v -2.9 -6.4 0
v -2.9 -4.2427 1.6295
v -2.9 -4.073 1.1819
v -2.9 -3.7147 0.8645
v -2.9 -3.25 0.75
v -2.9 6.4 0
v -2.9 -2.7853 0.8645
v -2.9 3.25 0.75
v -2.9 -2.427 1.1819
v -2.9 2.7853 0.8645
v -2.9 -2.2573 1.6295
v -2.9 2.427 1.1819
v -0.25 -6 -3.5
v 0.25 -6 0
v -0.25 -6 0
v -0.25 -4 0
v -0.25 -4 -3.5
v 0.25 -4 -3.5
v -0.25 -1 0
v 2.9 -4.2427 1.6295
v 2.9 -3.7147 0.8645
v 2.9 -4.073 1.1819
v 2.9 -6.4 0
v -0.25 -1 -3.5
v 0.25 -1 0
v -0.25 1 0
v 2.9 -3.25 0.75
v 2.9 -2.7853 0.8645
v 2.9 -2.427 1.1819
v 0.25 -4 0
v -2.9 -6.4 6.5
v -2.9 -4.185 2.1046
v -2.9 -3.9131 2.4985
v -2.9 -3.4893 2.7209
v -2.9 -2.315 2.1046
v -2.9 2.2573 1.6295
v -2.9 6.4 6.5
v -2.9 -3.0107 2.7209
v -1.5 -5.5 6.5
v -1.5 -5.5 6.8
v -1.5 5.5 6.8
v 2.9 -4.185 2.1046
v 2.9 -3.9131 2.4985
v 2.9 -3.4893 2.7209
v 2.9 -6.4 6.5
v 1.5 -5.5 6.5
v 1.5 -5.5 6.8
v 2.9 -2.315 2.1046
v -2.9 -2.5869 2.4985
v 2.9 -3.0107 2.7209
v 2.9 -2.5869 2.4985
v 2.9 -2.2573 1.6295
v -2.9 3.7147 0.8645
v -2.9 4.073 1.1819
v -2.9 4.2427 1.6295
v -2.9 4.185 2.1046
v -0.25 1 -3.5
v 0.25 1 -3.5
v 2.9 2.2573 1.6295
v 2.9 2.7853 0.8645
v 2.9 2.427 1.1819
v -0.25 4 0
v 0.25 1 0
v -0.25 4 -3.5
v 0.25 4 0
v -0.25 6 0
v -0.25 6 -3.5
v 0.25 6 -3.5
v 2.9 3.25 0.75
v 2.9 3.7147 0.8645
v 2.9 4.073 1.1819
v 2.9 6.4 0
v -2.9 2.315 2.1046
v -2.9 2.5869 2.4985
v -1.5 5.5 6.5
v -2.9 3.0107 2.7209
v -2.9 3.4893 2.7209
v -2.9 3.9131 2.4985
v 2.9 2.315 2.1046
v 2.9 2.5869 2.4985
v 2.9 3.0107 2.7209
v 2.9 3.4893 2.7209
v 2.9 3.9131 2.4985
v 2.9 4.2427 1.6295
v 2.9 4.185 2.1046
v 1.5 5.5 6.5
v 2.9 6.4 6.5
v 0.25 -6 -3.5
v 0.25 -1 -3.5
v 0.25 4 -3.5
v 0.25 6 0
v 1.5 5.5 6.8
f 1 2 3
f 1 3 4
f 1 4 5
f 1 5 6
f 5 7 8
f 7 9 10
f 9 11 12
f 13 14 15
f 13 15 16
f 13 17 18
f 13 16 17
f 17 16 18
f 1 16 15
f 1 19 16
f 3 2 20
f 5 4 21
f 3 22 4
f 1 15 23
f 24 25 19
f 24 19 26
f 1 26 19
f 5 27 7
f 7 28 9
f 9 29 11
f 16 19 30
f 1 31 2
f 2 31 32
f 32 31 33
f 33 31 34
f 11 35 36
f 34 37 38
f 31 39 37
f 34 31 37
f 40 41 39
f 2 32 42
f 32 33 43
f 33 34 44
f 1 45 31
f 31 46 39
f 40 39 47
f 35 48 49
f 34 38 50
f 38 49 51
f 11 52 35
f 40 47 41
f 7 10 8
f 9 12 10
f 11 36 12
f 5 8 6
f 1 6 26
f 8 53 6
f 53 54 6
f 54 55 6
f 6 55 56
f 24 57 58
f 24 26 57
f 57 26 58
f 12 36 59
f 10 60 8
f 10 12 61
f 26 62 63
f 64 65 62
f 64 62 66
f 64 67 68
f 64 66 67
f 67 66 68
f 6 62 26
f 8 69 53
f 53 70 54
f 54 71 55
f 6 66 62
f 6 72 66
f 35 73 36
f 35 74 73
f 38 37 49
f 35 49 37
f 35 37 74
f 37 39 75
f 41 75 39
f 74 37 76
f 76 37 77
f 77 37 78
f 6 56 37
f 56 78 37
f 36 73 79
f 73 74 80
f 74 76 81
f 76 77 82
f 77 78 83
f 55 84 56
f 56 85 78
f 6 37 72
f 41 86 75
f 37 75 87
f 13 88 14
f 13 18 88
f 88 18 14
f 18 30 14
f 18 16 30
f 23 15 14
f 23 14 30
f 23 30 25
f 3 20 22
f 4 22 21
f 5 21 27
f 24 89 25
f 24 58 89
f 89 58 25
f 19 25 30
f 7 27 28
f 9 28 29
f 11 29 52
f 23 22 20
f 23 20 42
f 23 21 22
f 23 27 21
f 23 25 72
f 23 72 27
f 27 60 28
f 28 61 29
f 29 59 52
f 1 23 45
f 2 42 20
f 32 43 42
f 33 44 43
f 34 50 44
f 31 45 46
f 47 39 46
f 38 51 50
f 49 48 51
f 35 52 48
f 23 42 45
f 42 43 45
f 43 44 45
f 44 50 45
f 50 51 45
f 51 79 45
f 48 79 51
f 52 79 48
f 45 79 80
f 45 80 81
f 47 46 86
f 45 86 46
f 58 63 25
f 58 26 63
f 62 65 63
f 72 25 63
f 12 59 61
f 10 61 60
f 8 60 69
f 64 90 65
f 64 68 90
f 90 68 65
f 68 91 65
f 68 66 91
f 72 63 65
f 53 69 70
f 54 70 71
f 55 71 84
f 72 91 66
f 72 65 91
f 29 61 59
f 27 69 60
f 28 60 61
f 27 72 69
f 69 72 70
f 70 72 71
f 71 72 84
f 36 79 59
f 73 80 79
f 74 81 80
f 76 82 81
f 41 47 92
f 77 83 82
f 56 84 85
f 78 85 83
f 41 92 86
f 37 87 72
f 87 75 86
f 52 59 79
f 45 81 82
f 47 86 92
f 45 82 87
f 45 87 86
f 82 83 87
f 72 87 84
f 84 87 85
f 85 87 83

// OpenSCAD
// file: ../lib/lib.scad
// Shared helpers. Include AFTER params.scad (needs TOL, M3_* etc.).
$fa = 4; $fs = 0.5;

module rrect(size, r) {            // 2D rounded rectangle, centred
    r2 = min(r, min(size[0], size[1]) / 2 - 0.001);
    offset(r = r2) square([size[0] - 2 * r2, size[1] - 2 * r2], center = true);
}
module rbox(size, r, center_xy = true) {   // box with rounded vertical edges
    translate(center_xy ? [0, 0, 0] : [size[0] / 2, size[1] / 2, 0])
        linear_extrude(size[2]) rrect([size[0], size[1]], r);
}
module rbox_at(x0, x1, y0, y1, z0, z1, r = 0.01) {
    translate([(x0 + x1) / 2, (y0 + y1) / 2, z0]) rbox([x1 - x0, y1 - y0, z1 - z0], r);
}
module box_at(x0, x1, y0, y1, z0, z1) { translate([x0, y0, z0]) cube([x1 - x0, y1 - y0, z1 - z0]); }

module ring(ro, ri, h) { difference() { cylinder(r = ro, h = h); translate([0, 0, -1]) cylinder(r = ri, h = h + 2); } }
module ring_sector(ro, ri, h, a0, a1) {
    intersection() {
        ring(ro, ri, h);
        linear_extrude(h) polygon(concat([[0, 0]], [for (a = [a0 : (a1 - a0) / 24 : a1]) 2 * ro * [cos(a), sin(a)]]));
    }
}
// teardrop hole along an axis lying horizontal (axis = Y after rotation), printable w/o support
module teardrop2d(d) { union() { circle(d = d); rotate(45) square(d / 2); } }
// vertical heat-set insert hole, opening at z=0 going +z (depth l)
module insert_hole(l = M3_INSERT_L) { translate([0, 0, -EPS]) cylinder(d = M3_INSERT_D, h = l + EPS); }
module m3_clear(l) { translate([0, 0, -EPS]) cylinder(d = M3_CLEAR, h = l + 2 * EPS); }
module m3_csk(l) {  // countersunk clearance from z=0 upward, head at z=0 side
    translate([0, 0, -EPS]) { cylinder(d = M3_CLEAR, h = l + 2 * EPS); cylinder(d1 = 6.4, d2 = M3_CLEAR, h = 1.7); }
}
module card2d() { rrect([CARD_L, CARD_W], CARD_R); }
module card_at(cy, z) { translate([0, cy, z]) linear_extrude(CARD_T) card2d(); }

// ---- gears ----
function _inv(a) = tan(a) - a * PI_ / 180;           // involute function, a in deg
function _invpt(rb, r, ang0, s) = let(al = acos(rb / r), th = ang0 - s * (_inv(al) * 180 / PI_)) [r * cos(th), r * sin(th)];
module involute_gear2d(m, z, pa = 20, clearance = 0.05) {
    rp = m * z / 2; rb = rp * cos(pa); ra = rp + m - clearance; rf = rp - 1.25 * m;
    half = 90 / z + _inv(pa) * 180 / PI_;            // tooth half-angle at base (deg)
    n = 8;
    rs = [for (i = [0 : n]) max(rb, rf) + (ra - max(rb, rf)) * i / n];
    union() {
        circle(r = rf, $fn = z * 4);
        for (k = [0 : z - 1]) rotate(k * 360 / z) polygon(concat(
            [[rf * cos(-half), rf * sin(-half)]],
            [for (r = rs) let(p = _invpt(rb, r, half, 1)) [p[0], -p[1]]],
            [for (i = [n : -1 : 0]) _invpt(rb, rs[i], half, 1)],
            [[rf * cos(half), rf * sin(half)]]));
    }
}
// straight gear rack (2D in XY: teeth along +x, pointing -y, pitch line at y=0)
module gear_rack2d(m, len, back = 3) {
    p = PI_ * m; ad = m; de = 1.25 * m; t = tan(20);
    n = ceil(len / p) + 1;
    intersection() {
        union() {
            translate([0, de]) square([len, back]);
            for (i = [0 : n]) translate([i * p - p / 4, 0]) polygon([
                [-(p / 4 + de * t), de + 0.01], [p / 4 + de * t + 0.01, de + 0.01],
                [p / 4 - ad * t, -ad], [-(p / 4 - ad * t), -ad] ]);
        }
        translate([0, -ad - 1]) square([len, ad + de + back + 2]);
    }
}
// GT2 belt-tooth profile ring (teeth outward), 2D
module gt2_ring2d(n, r_land, ri) {
    union() {
        difference() { circle(r = r_land + 0.01, $fn = n * 2); circle(r = ri, $fn = n * 2); }
        for (k = [0 : n - 1]) rotate(k * 360 / n)
            translate([r_land, 0]) hull() { translate([-0.2, 0]) square([0.2, 1.0], center = true); translate([0.25, 0]) circle(r = 0.5, $fn = 12); }
    }
}
// main file
// Vendor model: Mini lever microswitch 12.8x5.8x6.5 (KW10 style), shown actuated. Local: body z 0..6.5, long side Y, lever on top.
include <../params.scad>
include <../lib/lib.scad>
module vendor_microswitch() {
    color([0.15,0.15,0.15]) difference() { translate([-2.9, -6.4, 0]) cube([5.8, 12.8, 6.5]); for (y = [-3.25, 3.25]) translate([-4, y, 1.75]) rotate([0, 90, 0]) cylinder(d = 2, h = 8); }
    color([0.85,0.85,0.88]) translate([-1.5, -5.5, 6.5]) cube([3, 11, 0.3]);
    color([0.8,0.8,0.8]) for (y = [-5, 0, 5]) translate([-0.25, y - 1, -3.5]) cube([0.5, 2, 3.5]);
}

vendor_microswitch();
